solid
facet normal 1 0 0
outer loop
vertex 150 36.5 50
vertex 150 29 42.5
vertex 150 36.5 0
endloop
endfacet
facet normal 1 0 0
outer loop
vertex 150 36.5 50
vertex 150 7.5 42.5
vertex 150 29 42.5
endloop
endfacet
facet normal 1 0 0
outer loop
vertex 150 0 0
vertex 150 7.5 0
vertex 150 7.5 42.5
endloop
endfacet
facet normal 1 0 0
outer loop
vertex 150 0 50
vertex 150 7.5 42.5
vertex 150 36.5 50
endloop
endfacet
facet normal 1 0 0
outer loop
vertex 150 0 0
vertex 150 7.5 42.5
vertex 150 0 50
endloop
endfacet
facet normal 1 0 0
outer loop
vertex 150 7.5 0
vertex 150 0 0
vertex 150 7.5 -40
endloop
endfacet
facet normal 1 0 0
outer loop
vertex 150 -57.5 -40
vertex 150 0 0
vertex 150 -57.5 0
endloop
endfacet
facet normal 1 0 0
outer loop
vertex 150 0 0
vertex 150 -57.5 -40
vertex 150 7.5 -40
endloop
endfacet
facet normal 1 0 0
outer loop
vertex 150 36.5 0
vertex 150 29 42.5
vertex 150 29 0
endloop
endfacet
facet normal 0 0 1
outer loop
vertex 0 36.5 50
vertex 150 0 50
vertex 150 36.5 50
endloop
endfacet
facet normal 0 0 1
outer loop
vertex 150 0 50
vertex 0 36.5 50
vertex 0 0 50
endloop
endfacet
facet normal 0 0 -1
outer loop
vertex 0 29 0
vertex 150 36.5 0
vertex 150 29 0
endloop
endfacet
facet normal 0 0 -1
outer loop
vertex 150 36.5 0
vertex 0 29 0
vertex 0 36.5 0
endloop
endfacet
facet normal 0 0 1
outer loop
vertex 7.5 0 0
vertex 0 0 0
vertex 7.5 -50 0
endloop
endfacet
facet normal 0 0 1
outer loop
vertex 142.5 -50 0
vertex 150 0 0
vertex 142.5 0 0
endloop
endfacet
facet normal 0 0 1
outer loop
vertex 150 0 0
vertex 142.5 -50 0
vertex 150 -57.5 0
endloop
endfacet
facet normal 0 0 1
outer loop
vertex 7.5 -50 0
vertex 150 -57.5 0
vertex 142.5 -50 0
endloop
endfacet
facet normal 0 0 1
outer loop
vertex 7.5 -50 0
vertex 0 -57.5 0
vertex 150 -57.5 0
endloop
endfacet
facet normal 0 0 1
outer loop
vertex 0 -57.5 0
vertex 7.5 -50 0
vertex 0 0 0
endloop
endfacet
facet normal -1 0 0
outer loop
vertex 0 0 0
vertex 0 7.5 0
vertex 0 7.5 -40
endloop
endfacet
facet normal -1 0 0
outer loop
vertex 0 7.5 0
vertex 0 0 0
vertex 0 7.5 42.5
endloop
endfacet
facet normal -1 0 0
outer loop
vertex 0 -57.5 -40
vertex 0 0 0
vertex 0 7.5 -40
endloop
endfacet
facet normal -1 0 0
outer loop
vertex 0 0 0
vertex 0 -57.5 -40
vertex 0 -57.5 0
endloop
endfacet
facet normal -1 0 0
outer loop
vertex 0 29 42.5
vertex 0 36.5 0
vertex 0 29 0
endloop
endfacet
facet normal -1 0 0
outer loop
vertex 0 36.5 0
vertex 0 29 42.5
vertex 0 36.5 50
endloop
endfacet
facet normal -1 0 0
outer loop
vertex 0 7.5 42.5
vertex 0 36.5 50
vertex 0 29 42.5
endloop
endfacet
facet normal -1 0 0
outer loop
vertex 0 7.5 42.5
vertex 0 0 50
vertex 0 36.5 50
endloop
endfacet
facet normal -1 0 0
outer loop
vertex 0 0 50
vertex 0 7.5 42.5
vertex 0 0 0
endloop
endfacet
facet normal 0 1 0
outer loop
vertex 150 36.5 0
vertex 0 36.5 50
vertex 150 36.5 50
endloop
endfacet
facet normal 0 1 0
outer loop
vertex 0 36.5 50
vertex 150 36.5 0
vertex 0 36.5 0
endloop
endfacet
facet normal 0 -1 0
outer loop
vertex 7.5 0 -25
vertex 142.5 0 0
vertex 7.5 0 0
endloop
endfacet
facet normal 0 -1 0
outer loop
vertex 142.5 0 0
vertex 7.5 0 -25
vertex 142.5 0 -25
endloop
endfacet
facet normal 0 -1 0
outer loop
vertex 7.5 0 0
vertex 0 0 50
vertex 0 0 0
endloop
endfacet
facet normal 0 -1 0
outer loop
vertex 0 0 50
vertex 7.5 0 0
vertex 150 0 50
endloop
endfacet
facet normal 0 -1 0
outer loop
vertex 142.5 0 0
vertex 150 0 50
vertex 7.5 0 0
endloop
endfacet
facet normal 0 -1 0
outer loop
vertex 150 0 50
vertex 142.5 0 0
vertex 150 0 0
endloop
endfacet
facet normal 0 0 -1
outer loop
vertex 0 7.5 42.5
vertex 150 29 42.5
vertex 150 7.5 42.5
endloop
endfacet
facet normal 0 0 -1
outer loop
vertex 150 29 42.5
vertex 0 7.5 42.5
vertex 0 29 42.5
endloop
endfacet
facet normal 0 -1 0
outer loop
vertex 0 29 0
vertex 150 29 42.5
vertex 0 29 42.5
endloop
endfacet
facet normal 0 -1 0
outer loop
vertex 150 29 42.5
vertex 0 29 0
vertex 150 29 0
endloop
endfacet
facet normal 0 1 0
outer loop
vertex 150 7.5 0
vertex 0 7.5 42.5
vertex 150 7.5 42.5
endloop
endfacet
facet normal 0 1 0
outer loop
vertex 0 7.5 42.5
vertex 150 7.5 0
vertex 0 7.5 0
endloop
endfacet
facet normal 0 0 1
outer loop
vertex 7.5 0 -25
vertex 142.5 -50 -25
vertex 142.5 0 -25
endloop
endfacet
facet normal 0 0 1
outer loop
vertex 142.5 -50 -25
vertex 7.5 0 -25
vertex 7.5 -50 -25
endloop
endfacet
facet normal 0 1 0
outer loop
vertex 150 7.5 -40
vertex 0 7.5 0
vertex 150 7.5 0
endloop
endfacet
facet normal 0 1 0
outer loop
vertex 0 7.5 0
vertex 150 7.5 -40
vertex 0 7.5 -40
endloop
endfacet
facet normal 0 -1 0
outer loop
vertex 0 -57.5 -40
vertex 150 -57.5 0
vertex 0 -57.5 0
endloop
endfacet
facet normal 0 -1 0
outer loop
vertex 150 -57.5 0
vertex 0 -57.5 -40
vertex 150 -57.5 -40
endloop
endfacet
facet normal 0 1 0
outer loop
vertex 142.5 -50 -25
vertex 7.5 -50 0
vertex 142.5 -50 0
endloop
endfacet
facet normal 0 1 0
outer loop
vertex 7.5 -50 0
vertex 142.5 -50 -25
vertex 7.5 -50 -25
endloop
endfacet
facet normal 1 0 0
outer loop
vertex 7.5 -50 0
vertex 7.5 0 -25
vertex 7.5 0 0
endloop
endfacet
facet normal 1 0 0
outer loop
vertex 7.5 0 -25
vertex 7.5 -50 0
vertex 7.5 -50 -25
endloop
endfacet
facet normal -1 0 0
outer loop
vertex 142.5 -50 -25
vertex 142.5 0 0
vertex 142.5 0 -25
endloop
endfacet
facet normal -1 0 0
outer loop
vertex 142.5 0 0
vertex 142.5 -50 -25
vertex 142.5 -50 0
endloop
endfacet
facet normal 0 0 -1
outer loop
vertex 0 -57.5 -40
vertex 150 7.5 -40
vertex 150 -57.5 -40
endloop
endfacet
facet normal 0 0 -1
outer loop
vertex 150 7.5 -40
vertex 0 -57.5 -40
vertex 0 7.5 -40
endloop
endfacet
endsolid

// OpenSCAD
// aircon remote dimensions
remote_width_mm = 56;
remote_depth_mm = 15;
remote_height_mm = 164;


bed_depth_mm = 21.5;
handle_height_mm = 50;
handle_width_mm = 150;
handle_wall_thickness_mm = 15;
tray_height_mm = handle_height_mm/2 ;
tray_width_mm = handle_width_mm;
tray_depth_mm = handle_wall_thickness_mm/2;
tray_insert_depth_mm = 50;


module tray_handle(
    tray_width_mm, 
    tray_depth_mm, 
    tray_height_mm
    ) {
        difference() {
            cube([tray_width_mm, tray_depth_mm + handle_wall_thickness_mm, tray_height_mm]);
            translate([-handle_wall_thickness_mm, handle_wall_thickness_mm/2, -handle_wall_thickness_mm/2]) {
                cube([tray_width_mm*2 , tray_depth_mm, tray_height_mm]);
            }
        }
}

module tray_holder(
    tray_width, 
    tray_depth, 
    tray_height,
    tray_insert_depth
    ) {
        cube([tray_width, tray_depth, tray_height]);
        translate([0,tray_depth + tray_insert_depth,0]) {
            cube([tray_width, tray_depth, tray_height]);
        }
        cube([tray_depth, tray_depth + tray_insert_depth, tray_height]);
        translate([tray_width - tray_depth,0,0]) {
            cube([tray_depth, tray_depth + tray_insert_depth, tray_height]);
        }
        translate([0,0,tray_height_mm]) {
            cube([tray_width, tray_depth*2 + tray_insert_depth, handle_wall_thickness_mm]);
        }
}

module tray() {
    tray_handle(handle_width_mm,bed_depth_mm, handle_height_mm);
    translate([0,handle_wall_thickness_mm/2,0]) {
        rotate([180, 0, 0]) {
            tray_holder(tray_width_mm, tray_depth_mm, tray_height_mm, tray_insert_depth_mm);
        }
    }
}

tray();
